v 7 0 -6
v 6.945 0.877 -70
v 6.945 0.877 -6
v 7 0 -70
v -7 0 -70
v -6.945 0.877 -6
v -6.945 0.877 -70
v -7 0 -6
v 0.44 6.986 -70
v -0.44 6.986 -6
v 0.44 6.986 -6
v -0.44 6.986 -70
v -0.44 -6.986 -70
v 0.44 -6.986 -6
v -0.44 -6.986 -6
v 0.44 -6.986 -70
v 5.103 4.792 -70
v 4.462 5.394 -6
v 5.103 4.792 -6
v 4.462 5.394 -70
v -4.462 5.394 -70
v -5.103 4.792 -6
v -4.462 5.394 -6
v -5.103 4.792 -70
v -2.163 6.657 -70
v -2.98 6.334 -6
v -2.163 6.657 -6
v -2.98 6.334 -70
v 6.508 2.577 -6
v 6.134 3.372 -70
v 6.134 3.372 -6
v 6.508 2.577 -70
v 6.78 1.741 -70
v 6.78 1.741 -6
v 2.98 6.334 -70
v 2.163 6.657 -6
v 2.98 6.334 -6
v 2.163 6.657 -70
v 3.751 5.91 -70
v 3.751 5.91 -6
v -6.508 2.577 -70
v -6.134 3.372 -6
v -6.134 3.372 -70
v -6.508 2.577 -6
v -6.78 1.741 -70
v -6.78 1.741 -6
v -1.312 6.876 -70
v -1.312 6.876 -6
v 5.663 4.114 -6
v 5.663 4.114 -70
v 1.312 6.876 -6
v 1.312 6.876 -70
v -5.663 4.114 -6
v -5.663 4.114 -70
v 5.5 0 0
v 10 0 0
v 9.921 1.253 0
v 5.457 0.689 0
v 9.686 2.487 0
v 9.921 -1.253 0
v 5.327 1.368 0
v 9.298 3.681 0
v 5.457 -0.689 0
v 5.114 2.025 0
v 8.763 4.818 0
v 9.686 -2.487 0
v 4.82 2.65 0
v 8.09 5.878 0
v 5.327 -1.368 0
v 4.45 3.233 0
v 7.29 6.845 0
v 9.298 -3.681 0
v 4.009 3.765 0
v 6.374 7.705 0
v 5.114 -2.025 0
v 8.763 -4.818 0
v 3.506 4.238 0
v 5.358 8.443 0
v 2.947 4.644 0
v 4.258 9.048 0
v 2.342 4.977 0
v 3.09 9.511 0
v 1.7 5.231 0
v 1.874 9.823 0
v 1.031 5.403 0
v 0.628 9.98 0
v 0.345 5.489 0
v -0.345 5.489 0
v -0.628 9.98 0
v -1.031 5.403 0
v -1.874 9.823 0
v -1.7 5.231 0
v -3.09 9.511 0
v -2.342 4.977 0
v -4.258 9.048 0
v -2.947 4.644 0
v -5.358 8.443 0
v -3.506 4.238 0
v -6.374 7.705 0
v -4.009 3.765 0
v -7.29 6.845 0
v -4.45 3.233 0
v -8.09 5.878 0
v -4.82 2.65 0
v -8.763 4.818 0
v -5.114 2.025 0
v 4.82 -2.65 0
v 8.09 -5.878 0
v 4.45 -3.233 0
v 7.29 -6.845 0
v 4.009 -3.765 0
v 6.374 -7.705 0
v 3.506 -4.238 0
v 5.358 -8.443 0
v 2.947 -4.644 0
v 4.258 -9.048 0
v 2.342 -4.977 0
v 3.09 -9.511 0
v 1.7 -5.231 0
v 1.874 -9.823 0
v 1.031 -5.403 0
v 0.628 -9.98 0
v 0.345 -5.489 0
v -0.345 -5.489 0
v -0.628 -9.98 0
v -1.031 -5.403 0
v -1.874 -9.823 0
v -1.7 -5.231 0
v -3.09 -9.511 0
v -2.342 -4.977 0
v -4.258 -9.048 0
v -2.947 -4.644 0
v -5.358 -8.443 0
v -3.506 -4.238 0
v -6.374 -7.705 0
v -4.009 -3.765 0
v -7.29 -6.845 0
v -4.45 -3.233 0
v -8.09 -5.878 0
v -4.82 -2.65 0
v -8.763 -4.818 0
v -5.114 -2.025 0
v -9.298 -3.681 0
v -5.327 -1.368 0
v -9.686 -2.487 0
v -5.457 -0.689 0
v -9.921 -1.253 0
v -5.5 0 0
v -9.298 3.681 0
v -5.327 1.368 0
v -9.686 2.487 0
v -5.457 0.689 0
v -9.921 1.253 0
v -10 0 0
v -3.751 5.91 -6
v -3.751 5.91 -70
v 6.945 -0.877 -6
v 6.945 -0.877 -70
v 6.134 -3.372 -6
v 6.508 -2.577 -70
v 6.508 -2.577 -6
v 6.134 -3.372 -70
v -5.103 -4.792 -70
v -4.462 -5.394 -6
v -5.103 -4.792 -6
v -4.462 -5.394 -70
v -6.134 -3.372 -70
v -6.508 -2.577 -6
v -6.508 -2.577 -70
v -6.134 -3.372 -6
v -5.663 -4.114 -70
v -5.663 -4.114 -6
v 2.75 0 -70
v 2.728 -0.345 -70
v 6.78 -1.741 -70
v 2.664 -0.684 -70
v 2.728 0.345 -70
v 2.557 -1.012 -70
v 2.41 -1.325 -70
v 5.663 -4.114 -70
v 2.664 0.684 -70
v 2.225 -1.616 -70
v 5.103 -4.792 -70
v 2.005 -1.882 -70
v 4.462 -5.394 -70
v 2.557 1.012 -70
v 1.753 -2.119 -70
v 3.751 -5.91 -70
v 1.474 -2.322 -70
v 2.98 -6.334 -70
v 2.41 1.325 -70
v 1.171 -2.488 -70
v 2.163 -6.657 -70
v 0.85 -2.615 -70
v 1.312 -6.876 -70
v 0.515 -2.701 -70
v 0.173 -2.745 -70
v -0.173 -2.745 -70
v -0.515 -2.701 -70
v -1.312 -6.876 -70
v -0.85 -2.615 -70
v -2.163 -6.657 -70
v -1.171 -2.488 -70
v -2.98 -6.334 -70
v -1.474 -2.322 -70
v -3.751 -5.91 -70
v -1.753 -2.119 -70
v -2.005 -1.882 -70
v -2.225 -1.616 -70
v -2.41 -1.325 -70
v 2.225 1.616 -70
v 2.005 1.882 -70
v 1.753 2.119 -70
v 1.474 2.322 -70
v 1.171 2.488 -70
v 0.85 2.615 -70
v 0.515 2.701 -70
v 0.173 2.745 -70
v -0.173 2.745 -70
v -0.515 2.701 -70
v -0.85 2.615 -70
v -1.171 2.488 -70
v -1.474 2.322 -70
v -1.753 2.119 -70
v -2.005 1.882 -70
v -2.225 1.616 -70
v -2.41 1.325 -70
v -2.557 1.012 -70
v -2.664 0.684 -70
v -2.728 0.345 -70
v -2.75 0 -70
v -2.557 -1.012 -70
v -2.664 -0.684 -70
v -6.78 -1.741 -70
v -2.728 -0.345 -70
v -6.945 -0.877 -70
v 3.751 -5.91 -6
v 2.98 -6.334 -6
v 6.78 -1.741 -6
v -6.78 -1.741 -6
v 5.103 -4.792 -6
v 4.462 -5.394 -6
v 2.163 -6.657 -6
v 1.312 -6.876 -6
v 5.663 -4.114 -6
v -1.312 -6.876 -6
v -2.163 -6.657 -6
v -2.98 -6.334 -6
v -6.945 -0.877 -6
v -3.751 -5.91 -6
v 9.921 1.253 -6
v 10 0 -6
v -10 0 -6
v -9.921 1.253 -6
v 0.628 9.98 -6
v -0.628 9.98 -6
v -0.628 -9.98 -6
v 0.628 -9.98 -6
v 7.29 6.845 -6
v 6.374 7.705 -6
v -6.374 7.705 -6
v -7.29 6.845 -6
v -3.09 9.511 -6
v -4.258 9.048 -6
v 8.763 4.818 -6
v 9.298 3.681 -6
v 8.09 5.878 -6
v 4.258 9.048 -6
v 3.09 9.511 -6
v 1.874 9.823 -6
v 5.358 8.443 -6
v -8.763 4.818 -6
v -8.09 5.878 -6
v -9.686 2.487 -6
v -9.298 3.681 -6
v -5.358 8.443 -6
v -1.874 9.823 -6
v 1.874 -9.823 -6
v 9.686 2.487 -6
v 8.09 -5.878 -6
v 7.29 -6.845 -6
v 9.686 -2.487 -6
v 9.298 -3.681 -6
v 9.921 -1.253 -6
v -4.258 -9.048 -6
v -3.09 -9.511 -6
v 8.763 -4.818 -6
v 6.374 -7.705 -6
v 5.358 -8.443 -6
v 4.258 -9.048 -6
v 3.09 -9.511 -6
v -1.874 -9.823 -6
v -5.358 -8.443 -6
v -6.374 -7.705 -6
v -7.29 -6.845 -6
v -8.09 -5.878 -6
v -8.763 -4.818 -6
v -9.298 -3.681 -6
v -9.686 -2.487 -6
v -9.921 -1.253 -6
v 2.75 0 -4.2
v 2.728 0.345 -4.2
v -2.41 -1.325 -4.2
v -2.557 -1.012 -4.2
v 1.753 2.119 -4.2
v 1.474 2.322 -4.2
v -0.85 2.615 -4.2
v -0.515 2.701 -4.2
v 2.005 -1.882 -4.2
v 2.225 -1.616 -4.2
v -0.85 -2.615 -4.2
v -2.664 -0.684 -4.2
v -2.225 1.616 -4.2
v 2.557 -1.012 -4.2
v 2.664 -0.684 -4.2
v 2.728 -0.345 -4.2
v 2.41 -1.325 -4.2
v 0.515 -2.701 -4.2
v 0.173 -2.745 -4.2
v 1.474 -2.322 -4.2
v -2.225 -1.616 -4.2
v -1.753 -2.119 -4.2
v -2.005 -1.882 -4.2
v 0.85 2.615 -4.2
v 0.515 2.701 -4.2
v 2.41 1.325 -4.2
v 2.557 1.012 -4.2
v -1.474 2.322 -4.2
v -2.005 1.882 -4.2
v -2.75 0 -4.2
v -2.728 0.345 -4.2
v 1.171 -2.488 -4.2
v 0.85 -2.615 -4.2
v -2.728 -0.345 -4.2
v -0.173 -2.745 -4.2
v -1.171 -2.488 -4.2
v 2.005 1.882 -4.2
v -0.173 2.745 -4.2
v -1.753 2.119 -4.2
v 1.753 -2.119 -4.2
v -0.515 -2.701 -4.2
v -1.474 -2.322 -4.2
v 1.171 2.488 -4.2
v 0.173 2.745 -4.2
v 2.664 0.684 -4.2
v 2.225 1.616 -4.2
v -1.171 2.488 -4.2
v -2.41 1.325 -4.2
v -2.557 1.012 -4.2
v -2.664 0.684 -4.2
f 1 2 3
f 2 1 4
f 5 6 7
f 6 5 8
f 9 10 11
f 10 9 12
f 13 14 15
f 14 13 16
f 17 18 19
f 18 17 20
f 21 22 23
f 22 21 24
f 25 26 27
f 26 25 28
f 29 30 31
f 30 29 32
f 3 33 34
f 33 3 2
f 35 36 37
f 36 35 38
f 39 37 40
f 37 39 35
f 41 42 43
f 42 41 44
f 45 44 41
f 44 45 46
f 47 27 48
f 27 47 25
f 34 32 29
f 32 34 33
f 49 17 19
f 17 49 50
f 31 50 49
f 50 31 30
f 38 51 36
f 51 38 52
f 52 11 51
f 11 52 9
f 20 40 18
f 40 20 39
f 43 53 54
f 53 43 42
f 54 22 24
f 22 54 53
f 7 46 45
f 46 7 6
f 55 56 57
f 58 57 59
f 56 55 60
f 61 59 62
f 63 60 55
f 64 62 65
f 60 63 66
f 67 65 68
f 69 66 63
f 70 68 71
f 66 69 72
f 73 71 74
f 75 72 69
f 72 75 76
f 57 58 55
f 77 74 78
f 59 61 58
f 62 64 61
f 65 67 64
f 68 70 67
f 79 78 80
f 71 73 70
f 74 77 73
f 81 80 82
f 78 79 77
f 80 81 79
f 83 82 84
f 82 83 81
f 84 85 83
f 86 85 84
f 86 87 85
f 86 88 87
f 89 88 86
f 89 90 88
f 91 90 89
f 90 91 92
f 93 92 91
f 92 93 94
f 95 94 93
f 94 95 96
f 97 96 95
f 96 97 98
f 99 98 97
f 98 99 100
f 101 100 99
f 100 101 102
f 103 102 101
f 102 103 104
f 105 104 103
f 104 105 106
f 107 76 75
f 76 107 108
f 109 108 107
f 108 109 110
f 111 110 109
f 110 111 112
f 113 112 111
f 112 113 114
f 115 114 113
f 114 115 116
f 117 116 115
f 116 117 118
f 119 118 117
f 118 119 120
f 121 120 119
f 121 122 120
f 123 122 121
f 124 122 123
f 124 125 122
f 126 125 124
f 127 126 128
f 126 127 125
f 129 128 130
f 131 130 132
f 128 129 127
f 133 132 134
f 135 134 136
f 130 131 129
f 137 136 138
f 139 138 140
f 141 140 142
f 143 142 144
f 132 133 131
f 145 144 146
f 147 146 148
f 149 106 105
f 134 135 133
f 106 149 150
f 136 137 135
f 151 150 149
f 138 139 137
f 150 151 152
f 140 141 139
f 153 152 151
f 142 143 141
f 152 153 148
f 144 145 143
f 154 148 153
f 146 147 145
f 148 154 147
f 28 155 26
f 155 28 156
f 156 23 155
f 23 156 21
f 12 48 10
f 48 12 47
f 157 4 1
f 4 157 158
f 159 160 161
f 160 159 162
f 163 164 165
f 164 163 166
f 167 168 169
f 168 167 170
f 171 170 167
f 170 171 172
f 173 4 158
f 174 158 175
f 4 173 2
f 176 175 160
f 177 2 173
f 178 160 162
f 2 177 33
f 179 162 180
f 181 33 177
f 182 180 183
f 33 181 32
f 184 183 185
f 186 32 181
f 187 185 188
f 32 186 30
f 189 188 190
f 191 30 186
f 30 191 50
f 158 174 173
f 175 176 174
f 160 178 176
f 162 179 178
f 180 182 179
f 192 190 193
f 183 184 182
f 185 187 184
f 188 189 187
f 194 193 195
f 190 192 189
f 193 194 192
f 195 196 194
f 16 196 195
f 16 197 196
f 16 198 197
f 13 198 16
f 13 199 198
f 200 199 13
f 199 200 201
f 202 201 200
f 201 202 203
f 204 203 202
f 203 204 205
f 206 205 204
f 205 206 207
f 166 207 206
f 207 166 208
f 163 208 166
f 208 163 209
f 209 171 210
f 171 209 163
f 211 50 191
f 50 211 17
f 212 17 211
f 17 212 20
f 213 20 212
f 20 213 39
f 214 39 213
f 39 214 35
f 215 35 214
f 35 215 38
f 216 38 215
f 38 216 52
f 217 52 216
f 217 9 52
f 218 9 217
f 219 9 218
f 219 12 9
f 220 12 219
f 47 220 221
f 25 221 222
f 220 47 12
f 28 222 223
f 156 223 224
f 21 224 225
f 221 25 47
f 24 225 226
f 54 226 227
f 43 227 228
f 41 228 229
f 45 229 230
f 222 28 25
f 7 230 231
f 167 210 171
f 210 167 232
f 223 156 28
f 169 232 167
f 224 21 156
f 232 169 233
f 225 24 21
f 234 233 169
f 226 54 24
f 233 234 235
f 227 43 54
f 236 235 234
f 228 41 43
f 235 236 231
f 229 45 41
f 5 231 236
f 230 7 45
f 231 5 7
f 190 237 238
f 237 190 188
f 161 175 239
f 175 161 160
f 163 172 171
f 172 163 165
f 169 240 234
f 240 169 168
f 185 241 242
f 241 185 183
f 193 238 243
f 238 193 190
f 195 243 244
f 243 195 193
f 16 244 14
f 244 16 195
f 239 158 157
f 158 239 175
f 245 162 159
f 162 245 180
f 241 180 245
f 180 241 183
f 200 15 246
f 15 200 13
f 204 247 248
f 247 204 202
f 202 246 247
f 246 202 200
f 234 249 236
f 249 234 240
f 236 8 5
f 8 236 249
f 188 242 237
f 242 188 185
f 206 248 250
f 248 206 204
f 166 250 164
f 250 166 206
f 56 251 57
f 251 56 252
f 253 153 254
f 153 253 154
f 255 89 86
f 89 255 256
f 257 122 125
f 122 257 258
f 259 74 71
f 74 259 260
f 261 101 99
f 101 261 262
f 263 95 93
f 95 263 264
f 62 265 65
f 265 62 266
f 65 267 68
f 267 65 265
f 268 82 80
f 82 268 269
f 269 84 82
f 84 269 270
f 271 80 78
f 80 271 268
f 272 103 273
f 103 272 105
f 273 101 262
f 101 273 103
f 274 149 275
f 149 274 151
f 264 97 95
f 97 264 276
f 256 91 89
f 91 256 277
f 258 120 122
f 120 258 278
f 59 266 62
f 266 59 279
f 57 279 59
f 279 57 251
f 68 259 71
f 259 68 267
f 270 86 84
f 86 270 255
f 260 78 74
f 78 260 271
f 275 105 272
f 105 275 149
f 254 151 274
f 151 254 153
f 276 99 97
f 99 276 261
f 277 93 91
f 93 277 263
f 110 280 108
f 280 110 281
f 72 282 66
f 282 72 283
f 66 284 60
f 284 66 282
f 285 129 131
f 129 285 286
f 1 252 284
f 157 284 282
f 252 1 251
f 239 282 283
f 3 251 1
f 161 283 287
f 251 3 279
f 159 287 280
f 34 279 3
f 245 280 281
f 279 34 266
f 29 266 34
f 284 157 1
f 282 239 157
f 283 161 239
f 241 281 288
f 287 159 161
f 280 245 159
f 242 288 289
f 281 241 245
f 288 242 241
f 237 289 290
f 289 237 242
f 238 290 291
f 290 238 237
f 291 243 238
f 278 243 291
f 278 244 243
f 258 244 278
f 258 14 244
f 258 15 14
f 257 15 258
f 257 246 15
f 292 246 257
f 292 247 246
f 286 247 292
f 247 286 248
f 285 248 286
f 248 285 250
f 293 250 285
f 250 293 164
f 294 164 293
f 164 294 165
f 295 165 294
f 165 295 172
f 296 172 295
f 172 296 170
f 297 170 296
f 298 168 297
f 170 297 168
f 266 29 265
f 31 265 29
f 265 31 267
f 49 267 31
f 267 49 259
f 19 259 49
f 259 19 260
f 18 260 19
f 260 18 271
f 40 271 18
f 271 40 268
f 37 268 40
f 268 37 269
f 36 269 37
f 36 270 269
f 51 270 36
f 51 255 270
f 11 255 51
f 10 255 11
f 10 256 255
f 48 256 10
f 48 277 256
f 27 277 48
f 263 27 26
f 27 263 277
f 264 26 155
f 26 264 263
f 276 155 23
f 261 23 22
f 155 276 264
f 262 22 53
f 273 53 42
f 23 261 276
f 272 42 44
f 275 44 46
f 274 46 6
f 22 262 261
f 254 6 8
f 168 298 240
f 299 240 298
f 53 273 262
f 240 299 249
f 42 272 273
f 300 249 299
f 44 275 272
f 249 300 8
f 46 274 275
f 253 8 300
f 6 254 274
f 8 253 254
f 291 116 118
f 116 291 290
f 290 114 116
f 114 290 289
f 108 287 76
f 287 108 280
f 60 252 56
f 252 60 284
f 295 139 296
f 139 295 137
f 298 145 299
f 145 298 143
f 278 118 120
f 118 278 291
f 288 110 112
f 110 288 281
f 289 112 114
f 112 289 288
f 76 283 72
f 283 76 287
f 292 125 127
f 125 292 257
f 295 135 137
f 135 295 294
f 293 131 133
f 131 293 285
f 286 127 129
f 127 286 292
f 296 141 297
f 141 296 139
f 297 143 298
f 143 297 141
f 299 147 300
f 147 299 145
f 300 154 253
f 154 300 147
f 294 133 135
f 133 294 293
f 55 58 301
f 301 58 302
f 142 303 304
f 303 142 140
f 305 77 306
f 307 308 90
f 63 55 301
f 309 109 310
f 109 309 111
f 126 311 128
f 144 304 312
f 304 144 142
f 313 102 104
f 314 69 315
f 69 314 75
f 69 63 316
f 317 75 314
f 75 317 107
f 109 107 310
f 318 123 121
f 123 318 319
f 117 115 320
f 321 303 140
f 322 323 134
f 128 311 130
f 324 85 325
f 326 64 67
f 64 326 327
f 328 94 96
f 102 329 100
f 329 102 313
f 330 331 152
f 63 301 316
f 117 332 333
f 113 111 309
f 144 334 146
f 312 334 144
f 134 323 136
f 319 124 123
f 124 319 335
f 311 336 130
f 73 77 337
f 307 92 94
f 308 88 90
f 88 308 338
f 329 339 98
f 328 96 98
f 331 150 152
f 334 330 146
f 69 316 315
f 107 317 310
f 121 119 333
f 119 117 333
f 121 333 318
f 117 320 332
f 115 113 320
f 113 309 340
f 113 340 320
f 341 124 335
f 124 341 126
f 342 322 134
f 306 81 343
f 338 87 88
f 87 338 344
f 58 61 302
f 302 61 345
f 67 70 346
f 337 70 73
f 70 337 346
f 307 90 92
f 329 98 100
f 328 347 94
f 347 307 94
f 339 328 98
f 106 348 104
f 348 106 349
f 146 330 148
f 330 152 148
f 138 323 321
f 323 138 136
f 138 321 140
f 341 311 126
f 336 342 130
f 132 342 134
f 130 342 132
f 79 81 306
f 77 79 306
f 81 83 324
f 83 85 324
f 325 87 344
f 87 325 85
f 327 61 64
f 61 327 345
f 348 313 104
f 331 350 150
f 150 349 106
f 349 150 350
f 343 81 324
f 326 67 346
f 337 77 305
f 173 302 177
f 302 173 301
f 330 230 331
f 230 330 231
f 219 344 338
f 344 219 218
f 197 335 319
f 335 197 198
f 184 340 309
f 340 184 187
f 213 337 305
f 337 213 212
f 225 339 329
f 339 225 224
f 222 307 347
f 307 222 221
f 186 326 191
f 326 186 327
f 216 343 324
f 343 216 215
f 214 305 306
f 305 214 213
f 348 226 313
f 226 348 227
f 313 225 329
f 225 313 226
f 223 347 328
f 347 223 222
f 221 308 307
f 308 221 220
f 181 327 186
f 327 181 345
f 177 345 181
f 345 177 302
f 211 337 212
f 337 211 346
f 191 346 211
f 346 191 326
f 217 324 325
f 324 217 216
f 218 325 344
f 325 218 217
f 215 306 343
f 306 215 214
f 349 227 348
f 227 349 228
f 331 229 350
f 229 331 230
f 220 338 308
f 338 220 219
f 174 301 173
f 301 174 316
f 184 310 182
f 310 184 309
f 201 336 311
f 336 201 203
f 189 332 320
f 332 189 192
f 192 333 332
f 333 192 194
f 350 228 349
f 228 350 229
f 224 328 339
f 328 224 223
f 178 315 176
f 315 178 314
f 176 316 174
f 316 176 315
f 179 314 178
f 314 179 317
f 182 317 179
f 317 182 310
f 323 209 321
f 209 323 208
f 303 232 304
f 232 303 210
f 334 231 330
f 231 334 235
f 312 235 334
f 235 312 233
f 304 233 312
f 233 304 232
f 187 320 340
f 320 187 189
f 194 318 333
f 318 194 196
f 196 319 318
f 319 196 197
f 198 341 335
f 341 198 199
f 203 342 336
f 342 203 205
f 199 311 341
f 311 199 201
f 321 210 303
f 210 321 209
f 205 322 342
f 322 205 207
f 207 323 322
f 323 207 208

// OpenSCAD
$fn = 50;


difference() {
	union() {
		translate(v = [0, 0, -70.0000000000]) {
			cylinder(h = 70, r = 7.0000000000);
		}
		translate(v = [0, 0, -6.0000000000]) {
			cylinder(h = 6, r = 10.0000000000);
		}
	}
	union() {
		translate(v = [0, 0, 0]) {
			rotate(a = [0, 0, 0]) {
				difference() {
					union() {
						#translate(v = [0, 0, -70.0000000000]) {
							cylinder(h = 70, r = 2.2500000000);
						}
						#translate(v = [0, 0, -4.2000000000]) {
							cylinder(h = 4.2000000000, r1 = 2.7500000000, r2 = 5.5000000000);
						}
						#translate(v = [0, 0, -70.0000000000]) {
							cylinder(h = 70, r = 2.7500000000);
						}
						#translate(v = [0, 0, -70.0000000000]) {
							cylinder(h = 70, r = 2.2500000000);
						}
					}
					union();
				}
			}
		}
	}
}
